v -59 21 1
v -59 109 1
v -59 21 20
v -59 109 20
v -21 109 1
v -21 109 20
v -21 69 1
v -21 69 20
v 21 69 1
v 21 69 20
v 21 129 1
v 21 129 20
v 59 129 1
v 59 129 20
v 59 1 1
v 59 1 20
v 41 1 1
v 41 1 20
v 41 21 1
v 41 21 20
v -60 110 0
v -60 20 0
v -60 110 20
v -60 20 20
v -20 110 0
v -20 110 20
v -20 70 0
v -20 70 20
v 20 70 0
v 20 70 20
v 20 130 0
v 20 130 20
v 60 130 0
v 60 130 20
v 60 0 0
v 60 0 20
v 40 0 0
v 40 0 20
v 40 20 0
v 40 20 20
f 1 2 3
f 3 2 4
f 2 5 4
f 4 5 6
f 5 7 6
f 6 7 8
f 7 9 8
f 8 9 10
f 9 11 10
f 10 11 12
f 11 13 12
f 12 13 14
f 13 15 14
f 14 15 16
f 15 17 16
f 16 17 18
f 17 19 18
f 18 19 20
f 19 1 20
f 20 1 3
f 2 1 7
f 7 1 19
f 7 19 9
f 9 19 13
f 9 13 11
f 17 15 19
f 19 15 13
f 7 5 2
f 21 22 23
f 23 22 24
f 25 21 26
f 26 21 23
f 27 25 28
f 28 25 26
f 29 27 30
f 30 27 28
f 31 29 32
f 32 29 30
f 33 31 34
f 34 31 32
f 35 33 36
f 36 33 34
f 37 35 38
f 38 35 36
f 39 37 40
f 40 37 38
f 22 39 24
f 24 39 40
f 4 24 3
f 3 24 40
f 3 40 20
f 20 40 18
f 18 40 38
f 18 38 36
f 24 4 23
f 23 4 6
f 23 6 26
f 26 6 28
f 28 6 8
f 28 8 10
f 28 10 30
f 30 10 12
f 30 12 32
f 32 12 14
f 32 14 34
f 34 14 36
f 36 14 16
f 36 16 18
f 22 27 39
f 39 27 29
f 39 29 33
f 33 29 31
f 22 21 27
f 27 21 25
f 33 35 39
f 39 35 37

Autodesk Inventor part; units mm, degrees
ref_plane "YZ Plane" through (0, 0, 0) normal (1, 0, 0) x (0, 1, 0)
ref_plane "XZ Plane" through (0, 0, 0) normal (0, 1, 0) x (-1, 0, 0)
ref_plane "XY Plane" through (0, 0, 0) normal (0, 0, 1) x (1, 0, 0)
sketch "Sketch1" plane through (0, 0, 0) normal (0, 0, 1) x (1, 0, 0)
  line L0 (0, 2.4004) -> (60, 2.4004) construction
  line L1 (-60, 0) -> (60, 0) construction
  line L2 (-60, 0) -> (-60, 20) construction
  line L3 (-60, 20) -> (40, 20)
  line L4 (40, 20) -> (40, 0)
  line L5 (40, 0) -> (60, 0)
  line L6 (60, 0) -> (60, 130)
  line L7 (75, 0) -> (75, 70) construction
  line L8 (-60, 20) -> (-60, 110)
  line L9 (-60, 110) -> (-20, 110)
  line L10 (-20, 110) -> (-20, 70)
  line L11 (-20, 70) -> (20, 70)
  line L12 (20, 70) -> (20, 130)
  line L13 (20, 130) -> (60, 130)
  point P0 (0, 0)
  dimension "d2" = 120
  dimension "d3" = 20
  dimension "d4" = 100
  dimension "d5" = 20
  dimension "d6" = 20
  dimension "d7" = 130
  dimension "d8" = 70
  dimension "d9" = 90
  dimension "d10" = 40
  dimension "d11" = 40
extrude "Extrusion1" add sketch "Sketch1" along normal blind 20
shell "Shell1" thickness 1 removed faces 1 at (-13.3333, 36.6667, 20)
properties part number "Spacer_3DPrint"
